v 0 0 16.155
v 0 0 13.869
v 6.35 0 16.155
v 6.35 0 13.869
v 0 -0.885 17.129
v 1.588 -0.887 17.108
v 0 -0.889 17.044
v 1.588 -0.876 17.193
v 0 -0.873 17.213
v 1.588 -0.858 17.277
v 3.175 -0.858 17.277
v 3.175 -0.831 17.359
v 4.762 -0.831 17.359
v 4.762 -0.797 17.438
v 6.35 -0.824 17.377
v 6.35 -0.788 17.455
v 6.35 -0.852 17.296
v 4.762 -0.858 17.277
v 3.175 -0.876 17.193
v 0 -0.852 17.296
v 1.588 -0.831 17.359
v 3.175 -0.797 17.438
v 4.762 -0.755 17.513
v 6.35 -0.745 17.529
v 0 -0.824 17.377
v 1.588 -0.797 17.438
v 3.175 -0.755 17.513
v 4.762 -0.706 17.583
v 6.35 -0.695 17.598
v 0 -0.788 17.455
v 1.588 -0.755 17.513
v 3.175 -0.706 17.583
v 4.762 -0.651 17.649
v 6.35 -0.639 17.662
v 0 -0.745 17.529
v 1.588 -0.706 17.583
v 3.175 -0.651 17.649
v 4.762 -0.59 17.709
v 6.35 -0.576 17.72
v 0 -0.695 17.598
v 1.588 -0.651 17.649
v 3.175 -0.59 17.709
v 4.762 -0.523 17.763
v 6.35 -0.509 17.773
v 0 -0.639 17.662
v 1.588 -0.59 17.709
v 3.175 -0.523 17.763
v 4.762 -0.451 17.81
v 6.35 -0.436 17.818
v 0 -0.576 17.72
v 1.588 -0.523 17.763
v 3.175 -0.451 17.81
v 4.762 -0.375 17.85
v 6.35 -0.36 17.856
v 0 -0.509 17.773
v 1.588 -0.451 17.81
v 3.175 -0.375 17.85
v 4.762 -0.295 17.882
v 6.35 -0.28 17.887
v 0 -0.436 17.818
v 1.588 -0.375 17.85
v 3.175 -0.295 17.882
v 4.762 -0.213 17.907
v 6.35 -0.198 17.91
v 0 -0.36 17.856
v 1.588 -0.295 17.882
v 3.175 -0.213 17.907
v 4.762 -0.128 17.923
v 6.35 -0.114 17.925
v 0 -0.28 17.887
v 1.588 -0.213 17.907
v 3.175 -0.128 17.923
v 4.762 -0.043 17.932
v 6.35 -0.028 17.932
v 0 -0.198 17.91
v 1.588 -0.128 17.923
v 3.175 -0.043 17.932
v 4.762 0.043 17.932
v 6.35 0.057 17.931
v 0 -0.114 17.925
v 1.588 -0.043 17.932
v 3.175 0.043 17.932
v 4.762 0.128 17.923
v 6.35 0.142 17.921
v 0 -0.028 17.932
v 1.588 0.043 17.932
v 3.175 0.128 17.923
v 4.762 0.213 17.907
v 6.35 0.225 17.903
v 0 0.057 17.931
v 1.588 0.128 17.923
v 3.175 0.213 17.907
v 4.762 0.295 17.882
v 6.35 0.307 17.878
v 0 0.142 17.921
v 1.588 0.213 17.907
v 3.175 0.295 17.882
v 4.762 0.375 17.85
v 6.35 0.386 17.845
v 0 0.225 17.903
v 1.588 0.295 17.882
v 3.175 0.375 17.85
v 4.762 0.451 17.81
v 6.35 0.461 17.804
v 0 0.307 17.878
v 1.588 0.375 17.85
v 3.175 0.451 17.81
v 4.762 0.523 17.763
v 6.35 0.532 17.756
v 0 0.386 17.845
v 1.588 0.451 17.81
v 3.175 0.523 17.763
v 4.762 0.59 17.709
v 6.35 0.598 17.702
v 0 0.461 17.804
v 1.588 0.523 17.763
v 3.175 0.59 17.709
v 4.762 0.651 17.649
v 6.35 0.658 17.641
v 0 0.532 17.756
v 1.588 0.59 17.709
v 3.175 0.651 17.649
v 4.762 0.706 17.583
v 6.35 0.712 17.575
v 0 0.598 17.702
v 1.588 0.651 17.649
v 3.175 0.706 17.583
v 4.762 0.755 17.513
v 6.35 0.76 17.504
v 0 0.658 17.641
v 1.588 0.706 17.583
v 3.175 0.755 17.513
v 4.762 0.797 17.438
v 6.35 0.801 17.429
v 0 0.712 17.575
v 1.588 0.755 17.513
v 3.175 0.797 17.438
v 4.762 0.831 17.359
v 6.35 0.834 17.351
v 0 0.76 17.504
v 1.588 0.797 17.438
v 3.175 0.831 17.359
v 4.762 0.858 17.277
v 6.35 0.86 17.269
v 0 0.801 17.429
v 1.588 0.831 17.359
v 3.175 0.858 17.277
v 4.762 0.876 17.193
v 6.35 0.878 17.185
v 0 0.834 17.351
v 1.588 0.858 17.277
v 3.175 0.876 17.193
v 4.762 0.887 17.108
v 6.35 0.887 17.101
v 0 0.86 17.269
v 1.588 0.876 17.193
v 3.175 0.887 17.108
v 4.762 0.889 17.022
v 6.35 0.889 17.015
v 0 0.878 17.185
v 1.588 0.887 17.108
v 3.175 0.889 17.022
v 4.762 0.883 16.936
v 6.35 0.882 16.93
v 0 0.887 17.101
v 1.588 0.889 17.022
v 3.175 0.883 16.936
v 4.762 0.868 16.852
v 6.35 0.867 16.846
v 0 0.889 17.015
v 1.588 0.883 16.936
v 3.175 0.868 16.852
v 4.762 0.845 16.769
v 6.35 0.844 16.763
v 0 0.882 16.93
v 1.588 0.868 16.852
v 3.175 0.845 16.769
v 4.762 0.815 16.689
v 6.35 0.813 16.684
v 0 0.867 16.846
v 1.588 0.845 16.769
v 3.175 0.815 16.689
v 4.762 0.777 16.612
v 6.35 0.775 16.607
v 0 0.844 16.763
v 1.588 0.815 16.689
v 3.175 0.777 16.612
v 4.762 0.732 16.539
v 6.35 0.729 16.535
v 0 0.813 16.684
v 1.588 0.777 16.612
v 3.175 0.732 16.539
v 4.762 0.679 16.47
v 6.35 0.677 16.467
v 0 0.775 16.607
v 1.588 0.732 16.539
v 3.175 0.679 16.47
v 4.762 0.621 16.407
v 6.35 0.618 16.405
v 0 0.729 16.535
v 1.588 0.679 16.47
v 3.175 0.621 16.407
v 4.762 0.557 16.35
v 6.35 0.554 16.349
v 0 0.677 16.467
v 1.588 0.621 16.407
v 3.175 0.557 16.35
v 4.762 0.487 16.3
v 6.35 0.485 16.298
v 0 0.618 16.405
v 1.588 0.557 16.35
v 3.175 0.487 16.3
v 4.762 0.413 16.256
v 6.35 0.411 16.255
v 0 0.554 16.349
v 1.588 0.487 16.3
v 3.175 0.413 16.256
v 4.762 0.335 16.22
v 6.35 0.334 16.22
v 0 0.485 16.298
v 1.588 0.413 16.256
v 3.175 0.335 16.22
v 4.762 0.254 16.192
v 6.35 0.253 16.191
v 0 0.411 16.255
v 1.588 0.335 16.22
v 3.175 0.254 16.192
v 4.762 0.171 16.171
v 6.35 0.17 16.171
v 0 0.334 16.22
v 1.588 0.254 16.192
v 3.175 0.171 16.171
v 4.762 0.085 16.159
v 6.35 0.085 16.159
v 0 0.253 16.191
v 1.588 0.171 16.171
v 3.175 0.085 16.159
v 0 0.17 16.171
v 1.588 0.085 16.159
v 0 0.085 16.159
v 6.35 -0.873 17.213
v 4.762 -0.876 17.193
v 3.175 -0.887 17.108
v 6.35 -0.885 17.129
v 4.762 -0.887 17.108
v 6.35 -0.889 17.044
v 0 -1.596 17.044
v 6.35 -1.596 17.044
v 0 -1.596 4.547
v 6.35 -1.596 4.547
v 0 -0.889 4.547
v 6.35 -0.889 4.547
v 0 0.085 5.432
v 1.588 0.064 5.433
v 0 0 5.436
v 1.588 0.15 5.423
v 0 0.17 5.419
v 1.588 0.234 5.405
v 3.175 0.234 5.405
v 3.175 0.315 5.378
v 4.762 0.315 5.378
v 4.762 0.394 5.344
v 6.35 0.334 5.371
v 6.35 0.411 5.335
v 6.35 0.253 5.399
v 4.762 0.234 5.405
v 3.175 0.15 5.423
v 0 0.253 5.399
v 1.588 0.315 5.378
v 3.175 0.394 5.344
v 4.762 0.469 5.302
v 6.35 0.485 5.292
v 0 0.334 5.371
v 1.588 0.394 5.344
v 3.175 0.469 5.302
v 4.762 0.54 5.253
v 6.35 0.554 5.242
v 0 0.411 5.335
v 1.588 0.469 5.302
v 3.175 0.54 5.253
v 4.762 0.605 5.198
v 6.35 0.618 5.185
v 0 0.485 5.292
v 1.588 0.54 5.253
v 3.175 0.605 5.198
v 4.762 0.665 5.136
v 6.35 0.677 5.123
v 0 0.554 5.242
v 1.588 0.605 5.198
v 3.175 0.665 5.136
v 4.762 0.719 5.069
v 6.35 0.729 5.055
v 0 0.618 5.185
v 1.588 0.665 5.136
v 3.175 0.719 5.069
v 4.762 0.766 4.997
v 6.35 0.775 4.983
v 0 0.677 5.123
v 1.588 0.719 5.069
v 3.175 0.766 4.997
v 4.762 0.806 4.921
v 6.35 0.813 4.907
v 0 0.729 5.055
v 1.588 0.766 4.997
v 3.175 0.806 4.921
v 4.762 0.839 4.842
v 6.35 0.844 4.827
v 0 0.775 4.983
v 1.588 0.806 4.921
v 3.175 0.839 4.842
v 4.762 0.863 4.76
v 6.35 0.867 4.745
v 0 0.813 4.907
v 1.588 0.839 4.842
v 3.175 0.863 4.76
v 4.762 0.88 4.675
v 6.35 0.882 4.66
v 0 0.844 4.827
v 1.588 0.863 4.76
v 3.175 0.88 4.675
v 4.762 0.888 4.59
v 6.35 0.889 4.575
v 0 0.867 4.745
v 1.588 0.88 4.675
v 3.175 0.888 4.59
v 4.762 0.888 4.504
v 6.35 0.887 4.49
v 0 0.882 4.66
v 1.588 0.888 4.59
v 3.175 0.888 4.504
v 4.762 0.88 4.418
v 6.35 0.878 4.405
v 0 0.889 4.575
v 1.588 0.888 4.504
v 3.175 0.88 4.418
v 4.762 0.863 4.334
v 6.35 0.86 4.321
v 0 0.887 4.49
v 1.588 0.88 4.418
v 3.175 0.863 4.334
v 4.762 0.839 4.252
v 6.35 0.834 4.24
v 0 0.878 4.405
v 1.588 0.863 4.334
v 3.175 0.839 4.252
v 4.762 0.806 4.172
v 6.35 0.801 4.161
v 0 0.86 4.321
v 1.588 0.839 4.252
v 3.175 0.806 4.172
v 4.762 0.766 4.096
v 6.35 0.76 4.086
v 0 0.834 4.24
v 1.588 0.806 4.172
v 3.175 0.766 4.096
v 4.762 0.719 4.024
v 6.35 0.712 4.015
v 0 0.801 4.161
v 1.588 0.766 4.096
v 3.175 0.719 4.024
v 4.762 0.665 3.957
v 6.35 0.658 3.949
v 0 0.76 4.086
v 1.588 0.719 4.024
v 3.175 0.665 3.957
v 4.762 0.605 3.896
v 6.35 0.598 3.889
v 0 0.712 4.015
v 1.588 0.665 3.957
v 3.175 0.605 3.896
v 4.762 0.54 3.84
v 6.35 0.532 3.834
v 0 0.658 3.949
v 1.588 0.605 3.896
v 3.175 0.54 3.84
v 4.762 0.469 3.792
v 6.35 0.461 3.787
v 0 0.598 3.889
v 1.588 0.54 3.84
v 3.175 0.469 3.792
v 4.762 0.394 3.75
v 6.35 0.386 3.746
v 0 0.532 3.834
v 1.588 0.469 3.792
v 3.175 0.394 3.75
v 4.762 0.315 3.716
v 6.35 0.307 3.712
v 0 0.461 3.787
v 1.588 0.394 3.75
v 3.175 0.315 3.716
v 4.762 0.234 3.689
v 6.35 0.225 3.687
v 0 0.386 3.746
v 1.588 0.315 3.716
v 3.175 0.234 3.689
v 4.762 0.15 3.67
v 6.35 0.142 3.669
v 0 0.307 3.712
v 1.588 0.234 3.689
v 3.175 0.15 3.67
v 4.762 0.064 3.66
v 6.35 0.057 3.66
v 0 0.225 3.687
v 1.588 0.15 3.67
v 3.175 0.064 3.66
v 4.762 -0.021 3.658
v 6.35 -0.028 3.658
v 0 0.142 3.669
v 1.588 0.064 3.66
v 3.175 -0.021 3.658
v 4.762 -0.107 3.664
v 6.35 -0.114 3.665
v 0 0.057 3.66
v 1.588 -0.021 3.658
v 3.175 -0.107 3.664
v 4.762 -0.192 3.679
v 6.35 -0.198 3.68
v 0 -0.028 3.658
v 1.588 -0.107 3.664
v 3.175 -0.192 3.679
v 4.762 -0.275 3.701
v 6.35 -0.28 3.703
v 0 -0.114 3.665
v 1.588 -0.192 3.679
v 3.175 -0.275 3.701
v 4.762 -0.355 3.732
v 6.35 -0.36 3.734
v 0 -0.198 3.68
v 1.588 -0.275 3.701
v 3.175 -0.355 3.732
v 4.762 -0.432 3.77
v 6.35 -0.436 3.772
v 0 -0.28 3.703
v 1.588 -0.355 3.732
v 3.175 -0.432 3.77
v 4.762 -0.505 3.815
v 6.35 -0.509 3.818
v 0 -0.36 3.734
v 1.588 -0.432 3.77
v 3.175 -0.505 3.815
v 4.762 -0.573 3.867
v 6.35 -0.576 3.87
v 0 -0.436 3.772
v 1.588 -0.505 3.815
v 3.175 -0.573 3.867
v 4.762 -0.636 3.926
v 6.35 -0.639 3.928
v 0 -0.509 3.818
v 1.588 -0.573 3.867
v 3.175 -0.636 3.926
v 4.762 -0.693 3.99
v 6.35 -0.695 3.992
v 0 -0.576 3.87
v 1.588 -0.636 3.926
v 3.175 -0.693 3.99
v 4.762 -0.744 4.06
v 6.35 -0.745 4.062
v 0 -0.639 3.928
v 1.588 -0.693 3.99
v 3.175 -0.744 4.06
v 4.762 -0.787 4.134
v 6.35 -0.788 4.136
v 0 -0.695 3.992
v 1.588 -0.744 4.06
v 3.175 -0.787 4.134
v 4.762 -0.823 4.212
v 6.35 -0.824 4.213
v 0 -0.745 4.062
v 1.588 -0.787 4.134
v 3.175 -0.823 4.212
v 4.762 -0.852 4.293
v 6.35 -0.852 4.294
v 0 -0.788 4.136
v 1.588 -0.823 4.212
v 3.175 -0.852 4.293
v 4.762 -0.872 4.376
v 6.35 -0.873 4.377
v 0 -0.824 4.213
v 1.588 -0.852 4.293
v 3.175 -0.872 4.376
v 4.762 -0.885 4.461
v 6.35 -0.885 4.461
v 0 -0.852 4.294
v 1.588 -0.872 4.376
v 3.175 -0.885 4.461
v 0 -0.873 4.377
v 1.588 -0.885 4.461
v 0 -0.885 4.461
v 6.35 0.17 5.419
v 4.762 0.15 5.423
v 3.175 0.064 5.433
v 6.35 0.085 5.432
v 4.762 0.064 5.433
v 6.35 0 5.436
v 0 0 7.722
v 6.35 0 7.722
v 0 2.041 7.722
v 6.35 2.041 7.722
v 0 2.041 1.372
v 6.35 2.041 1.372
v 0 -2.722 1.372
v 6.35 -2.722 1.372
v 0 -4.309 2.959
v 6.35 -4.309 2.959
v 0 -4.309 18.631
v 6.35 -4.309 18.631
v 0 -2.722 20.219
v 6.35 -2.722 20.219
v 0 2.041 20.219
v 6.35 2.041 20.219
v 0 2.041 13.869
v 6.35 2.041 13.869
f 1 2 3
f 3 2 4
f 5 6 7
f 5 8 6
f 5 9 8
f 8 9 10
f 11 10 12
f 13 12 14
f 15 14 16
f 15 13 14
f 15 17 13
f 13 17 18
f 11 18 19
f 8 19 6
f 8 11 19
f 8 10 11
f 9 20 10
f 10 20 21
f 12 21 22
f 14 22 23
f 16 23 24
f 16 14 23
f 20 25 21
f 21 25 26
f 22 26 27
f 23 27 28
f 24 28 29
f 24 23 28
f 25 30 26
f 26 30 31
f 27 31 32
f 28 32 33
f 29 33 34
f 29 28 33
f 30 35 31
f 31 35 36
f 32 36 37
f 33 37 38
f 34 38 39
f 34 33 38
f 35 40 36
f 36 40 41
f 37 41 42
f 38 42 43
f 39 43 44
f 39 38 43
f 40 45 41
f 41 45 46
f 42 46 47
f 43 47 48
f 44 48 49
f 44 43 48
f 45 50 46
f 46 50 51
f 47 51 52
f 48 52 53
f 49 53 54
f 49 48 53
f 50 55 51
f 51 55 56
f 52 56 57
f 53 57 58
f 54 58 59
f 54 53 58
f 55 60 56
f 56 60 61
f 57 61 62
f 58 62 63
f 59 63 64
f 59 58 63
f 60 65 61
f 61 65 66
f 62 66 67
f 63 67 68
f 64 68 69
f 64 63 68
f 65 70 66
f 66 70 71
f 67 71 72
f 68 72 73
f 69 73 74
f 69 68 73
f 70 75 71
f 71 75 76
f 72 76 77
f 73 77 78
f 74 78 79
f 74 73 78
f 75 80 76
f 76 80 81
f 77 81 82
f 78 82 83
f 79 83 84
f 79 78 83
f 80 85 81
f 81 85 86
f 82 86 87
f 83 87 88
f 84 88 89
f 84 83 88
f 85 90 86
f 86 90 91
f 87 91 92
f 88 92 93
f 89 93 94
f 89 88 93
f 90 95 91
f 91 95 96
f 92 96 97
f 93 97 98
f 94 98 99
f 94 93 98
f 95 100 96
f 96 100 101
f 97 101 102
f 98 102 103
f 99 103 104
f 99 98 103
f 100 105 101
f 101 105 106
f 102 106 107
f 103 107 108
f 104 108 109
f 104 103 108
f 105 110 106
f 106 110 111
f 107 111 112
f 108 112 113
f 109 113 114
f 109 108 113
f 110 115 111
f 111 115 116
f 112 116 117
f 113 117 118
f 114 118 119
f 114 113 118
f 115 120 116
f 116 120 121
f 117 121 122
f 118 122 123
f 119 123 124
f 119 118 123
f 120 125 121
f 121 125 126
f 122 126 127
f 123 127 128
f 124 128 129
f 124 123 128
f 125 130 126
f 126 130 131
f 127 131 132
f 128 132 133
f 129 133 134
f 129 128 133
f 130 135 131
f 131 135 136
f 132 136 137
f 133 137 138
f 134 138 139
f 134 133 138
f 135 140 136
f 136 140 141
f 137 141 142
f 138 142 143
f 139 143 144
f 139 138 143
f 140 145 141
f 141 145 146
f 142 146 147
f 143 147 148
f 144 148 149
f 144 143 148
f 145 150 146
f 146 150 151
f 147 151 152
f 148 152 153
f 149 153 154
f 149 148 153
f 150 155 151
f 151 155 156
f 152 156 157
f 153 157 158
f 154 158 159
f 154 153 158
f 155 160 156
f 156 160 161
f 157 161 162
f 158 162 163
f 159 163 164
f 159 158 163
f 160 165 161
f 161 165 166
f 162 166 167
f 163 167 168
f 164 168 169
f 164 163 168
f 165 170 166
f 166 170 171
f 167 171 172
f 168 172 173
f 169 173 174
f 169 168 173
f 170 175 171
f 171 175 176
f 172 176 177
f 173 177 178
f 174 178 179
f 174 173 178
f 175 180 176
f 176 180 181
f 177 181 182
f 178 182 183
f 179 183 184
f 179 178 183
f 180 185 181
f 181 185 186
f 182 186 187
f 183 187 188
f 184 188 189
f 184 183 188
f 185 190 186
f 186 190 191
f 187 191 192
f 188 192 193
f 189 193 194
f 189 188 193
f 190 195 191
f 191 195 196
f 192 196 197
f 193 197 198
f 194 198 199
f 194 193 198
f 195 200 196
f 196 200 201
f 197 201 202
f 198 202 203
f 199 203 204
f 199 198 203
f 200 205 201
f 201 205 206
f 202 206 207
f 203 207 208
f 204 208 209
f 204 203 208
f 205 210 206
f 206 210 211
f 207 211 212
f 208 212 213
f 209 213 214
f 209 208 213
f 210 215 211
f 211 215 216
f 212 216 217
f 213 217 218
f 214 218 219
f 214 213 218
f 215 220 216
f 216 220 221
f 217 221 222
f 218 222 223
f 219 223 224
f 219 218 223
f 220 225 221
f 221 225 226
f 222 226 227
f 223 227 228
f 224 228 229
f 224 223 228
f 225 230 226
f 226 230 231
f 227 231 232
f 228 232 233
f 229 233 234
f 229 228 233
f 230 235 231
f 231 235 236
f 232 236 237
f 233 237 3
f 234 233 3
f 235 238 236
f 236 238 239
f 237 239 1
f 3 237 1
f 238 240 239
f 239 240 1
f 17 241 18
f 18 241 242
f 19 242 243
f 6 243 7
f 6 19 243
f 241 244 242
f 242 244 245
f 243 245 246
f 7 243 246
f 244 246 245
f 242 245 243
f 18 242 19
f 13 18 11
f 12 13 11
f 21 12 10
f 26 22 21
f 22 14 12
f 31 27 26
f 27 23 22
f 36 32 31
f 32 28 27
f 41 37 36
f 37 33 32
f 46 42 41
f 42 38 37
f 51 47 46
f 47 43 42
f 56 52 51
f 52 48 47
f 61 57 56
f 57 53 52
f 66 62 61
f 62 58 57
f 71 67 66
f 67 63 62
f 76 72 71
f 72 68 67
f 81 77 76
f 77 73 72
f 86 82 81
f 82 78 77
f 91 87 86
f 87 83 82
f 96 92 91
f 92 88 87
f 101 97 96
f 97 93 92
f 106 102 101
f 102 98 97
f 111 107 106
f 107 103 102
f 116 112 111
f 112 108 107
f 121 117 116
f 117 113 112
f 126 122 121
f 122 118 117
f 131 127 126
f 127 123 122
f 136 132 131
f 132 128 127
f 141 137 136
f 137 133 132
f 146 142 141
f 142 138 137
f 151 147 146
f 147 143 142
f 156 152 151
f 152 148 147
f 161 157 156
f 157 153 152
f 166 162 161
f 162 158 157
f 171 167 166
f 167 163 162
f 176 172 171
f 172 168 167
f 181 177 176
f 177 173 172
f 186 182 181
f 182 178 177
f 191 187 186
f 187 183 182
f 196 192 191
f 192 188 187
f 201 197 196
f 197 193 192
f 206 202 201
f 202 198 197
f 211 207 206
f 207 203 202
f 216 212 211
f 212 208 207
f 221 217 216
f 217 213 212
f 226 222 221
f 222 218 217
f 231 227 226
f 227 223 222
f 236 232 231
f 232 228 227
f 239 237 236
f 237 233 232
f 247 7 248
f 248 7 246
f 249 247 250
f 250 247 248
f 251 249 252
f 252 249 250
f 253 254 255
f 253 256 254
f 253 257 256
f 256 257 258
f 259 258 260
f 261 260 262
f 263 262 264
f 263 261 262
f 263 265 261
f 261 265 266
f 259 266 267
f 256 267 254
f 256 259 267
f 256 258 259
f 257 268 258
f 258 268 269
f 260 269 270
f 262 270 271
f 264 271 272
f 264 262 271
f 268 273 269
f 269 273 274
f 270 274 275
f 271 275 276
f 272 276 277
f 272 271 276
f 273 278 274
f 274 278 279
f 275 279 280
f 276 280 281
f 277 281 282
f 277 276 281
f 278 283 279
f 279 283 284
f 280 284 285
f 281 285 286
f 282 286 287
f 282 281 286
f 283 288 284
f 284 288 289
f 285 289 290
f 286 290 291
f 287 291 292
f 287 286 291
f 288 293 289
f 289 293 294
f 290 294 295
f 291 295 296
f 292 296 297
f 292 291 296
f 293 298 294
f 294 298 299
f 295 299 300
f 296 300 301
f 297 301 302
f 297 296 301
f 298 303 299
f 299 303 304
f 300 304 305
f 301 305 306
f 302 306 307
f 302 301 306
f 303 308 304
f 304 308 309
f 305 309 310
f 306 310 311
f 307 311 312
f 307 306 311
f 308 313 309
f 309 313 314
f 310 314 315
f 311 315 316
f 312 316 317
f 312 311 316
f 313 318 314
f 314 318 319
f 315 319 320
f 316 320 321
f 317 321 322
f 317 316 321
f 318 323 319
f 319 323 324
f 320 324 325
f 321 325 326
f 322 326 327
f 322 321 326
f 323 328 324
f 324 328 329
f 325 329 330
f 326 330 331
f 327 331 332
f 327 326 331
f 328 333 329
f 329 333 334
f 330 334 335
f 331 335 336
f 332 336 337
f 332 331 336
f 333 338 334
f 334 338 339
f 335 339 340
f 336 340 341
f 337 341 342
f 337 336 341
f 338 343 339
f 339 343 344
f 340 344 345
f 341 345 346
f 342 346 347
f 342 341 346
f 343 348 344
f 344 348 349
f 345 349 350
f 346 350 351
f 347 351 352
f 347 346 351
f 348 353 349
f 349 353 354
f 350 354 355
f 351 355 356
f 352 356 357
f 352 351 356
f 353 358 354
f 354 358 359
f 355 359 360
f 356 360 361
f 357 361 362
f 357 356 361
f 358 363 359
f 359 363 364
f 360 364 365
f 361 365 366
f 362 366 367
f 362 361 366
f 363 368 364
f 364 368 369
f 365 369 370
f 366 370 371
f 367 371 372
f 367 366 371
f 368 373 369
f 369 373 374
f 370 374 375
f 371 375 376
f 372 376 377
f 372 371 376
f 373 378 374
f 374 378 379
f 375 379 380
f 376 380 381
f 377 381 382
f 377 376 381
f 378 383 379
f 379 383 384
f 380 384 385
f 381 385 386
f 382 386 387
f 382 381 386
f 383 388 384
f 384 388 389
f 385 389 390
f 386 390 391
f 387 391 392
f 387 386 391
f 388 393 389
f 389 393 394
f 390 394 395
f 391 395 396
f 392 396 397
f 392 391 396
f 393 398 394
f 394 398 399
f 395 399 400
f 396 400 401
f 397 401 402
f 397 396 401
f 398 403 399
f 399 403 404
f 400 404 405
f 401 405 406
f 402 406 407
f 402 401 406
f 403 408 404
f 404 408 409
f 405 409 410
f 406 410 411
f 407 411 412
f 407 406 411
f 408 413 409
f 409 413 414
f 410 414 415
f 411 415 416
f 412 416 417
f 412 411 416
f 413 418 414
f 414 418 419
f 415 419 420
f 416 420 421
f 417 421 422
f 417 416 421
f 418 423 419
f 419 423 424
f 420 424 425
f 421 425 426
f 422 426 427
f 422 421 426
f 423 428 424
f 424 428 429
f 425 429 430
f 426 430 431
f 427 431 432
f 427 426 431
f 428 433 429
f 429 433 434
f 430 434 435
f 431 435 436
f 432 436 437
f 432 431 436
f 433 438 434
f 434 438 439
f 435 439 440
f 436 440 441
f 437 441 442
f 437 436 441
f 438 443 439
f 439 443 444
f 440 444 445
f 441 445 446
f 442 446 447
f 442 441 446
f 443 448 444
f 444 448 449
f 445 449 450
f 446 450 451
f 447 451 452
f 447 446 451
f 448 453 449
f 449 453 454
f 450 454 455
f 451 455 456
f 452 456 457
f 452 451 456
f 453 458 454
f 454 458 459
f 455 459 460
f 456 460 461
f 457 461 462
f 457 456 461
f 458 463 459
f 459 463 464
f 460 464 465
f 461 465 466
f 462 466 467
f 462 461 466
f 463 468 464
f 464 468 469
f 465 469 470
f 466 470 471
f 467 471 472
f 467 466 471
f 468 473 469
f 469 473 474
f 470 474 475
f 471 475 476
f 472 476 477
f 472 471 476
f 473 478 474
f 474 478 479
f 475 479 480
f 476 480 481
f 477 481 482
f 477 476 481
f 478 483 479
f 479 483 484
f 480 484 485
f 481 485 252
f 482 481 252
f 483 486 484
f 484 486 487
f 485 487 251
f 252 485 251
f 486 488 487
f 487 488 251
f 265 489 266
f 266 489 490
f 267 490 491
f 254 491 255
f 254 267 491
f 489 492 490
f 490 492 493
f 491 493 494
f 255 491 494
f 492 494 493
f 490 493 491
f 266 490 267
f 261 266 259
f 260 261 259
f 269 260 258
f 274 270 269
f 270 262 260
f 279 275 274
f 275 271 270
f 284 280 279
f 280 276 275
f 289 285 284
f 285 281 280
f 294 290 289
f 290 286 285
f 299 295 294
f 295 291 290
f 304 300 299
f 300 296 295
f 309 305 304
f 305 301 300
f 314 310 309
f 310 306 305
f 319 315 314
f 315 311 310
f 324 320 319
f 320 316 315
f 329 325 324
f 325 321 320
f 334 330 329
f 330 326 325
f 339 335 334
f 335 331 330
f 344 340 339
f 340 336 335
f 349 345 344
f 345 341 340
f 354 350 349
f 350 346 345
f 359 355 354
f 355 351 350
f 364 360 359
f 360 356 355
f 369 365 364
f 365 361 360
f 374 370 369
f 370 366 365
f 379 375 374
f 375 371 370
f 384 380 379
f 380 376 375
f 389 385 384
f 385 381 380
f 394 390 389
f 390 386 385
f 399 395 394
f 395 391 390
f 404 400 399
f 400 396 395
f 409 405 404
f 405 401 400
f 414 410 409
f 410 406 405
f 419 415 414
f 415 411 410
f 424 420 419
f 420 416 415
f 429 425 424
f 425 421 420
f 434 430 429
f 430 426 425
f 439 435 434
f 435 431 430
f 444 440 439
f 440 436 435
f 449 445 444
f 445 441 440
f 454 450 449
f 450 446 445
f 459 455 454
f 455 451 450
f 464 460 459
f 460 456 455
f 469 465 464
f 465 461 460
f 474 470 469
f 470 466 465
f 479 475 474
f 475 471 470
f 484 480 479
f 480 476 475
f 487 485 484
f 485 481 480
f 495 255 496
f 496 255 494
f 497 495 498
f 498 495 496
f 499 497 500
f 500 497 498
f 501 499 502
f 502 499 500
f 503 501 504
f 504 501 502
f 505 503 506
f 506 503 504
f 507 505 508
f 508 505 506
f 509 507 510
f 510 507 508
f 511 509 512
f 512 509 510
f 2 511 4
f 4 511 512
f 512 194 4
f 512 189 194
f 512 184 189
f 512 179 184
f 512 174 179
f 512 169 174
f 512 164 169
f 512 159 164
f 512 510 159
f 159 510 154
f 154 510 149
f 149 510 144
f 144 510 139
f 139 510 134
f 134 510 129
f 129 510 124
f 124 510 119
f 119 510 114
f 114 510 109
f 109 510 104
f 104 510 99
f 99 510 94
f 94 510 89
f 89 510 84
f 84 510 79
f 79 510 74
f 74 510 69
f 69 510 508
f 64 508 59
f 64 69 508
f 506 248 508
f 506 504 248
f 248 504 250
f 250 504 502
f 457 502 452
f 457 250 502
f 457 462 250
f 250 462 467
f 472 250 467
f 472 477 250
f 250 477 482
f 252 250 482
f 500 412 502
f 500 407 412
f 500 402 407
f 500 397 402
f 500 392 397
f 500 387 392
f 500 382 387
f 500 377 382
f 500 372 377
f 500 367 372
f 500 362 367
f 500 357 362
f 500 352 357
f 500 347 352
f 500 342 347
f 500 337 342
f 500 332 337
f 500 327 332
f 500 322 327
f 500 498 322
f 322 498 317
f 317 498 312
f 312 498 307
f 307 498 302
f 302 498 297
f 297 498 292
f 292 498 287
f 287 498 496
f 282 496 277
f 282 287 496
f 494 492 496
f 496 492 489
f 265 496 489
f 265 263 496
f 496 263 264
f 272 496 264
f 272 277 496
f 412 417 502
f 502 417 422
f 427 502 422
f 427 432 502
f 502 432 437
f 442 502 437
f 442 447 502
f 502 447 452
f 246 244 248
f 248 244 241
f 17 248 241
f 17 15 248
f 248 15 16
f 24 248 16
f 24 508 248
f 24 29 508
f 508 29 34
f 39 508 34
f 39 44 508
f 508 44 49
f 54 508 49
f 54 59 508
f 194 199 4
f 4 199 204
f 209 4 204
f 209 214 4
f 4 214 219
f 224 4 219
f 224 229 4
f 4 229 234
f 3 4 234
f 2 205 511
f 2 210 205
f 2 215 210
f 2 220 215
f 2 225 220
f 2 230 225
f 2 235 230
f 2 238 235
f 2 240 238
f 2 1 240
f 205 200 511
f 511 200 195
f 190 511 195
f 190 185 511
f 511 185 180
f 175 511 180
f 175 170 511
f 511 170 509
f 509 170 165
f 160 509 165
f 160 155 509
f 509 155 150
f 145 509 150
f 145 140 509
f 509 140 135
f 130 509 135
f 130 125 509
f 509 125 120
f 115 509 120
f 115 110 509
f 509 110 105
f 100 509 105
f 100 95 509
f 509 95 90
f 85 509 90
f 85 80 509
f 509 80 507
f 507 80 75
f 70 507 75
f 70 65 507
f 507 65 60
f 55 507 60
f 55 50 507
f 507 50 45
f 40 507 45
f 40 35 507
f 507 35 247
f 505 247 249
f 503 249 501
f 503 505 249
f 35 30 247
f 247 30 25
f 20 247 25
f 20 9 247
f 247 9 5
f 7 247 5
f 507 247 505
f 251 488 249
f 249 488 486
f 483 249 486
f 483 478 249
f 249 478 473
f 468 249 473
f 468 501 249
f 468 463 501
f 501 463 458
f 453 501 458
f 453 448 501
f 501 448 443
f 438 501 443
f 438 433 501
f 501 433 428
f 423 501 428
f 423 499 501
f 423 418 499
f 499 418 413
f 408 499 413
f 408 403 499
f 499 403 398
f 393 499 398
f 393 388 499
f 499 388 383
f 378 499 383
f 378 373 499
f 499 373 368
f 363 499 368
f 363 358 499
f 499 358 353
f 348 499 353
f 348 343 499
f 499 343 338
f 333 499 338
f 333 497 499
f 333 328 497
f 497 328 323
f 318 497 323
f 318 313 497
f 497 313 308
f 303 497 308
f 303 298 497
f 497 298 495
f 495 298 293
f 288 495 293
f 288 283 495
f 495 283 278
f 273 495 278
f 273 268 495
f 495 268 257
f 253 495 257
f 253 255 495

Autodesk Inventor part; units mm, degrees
ref_plane "YZ Plane" through (0, 0, 0) normal (1, 0, 0) x (0, 1, 0)
ref_plane "XZ Plane" through (0, 0, 0) normal (0, 1, 0) x (-1, 0, 0)
ref_plane "XY Plane" through (0, 0, 0) normal (0, 0, 1) x (1, 0, 0)
sketch "Sketch1" plane through (0, 0, 0) normal (1, 0, 0) x (0, 1, 0)
  arc A0 (0, 16.1546) -> (-0.889, 17.0436) centre (0, 17.0436) ccw
  arc A1 (-0.889, 4.5468) -> (0, 5.4358) centre (0, 4.5468) ccw
  line L0 (0, 13.8686) -> (2.0409, 13.8686)
  line L1 (0, 7.7218) -> (2.0409, 7.7218)
  line L2 (2.0409, 7.7218) -> (2.0409, 1.3718)
  line L3 (2.0409, 1.3718) -> (-2.7216, 1.3718)
  line L4 (2.0409, 13.8686) -> (2.0409, 20.2186)
  line L5 (2.0409, 20.2186) -> (-2.7216, 20.2186)
  line L6 (-4.3091, 18.6311) -> (-4.3091, 2.9593)
  line L7 (-2.7216, 20.2186) -> (-4.3091, 18.6311)
  line L8 (-2.7216, 1.3718) -> (-4.3091, 2.9593)
  line L9 (0, 3.6578) -> (-1.5964, 3.6578)
  line L10 (-1.5964, 4.5468) -> (-1.5964, 17.0436)
  line L11 (-1.5964, 17.9326) -> (0, 17.9326)
  line L12 (0, 16.1546) -> (0, 13.8686)
  line L13 (0, 7.7218) -> (0, 5.4358)
  line L14 (-0.889, 4.5468) -> (-1.5964, 4.5468)
  line L15 (-0.889, 17.0436) -> (-1.5964, 17.0436)
  point P0 (0, 0)
  point P1 (-4.3091, 1.3718)
  point P2 (-4.3091, 20.2186)
  dimension "d0" = 14.2748
  dimension "d1" = 1.778
  dimension "d2" = 0.889
  dimension "d3" = 1.778
  dimension "d4" = 0.889
  dimension "d5" = 3.175
  dimension "d6" = 3.175
  dimension "d7" = 6.35
  dimension "d8" = 6.35
  dimension "d9" = 6.35
  dimension "d10" = 1.5875
  dimension "d11" = 1.5875
  dimension "d12" = 1.5875
  dimension "d13" = 1.5875
extrude "Extrusion1" add sketch "Sketch1" along normal blind 6.35
equation "\"d11\" = d10"
equation "\"d12\" = d10"
equation "\"d13\" = d12"
properties part number "led_clip_v2"
